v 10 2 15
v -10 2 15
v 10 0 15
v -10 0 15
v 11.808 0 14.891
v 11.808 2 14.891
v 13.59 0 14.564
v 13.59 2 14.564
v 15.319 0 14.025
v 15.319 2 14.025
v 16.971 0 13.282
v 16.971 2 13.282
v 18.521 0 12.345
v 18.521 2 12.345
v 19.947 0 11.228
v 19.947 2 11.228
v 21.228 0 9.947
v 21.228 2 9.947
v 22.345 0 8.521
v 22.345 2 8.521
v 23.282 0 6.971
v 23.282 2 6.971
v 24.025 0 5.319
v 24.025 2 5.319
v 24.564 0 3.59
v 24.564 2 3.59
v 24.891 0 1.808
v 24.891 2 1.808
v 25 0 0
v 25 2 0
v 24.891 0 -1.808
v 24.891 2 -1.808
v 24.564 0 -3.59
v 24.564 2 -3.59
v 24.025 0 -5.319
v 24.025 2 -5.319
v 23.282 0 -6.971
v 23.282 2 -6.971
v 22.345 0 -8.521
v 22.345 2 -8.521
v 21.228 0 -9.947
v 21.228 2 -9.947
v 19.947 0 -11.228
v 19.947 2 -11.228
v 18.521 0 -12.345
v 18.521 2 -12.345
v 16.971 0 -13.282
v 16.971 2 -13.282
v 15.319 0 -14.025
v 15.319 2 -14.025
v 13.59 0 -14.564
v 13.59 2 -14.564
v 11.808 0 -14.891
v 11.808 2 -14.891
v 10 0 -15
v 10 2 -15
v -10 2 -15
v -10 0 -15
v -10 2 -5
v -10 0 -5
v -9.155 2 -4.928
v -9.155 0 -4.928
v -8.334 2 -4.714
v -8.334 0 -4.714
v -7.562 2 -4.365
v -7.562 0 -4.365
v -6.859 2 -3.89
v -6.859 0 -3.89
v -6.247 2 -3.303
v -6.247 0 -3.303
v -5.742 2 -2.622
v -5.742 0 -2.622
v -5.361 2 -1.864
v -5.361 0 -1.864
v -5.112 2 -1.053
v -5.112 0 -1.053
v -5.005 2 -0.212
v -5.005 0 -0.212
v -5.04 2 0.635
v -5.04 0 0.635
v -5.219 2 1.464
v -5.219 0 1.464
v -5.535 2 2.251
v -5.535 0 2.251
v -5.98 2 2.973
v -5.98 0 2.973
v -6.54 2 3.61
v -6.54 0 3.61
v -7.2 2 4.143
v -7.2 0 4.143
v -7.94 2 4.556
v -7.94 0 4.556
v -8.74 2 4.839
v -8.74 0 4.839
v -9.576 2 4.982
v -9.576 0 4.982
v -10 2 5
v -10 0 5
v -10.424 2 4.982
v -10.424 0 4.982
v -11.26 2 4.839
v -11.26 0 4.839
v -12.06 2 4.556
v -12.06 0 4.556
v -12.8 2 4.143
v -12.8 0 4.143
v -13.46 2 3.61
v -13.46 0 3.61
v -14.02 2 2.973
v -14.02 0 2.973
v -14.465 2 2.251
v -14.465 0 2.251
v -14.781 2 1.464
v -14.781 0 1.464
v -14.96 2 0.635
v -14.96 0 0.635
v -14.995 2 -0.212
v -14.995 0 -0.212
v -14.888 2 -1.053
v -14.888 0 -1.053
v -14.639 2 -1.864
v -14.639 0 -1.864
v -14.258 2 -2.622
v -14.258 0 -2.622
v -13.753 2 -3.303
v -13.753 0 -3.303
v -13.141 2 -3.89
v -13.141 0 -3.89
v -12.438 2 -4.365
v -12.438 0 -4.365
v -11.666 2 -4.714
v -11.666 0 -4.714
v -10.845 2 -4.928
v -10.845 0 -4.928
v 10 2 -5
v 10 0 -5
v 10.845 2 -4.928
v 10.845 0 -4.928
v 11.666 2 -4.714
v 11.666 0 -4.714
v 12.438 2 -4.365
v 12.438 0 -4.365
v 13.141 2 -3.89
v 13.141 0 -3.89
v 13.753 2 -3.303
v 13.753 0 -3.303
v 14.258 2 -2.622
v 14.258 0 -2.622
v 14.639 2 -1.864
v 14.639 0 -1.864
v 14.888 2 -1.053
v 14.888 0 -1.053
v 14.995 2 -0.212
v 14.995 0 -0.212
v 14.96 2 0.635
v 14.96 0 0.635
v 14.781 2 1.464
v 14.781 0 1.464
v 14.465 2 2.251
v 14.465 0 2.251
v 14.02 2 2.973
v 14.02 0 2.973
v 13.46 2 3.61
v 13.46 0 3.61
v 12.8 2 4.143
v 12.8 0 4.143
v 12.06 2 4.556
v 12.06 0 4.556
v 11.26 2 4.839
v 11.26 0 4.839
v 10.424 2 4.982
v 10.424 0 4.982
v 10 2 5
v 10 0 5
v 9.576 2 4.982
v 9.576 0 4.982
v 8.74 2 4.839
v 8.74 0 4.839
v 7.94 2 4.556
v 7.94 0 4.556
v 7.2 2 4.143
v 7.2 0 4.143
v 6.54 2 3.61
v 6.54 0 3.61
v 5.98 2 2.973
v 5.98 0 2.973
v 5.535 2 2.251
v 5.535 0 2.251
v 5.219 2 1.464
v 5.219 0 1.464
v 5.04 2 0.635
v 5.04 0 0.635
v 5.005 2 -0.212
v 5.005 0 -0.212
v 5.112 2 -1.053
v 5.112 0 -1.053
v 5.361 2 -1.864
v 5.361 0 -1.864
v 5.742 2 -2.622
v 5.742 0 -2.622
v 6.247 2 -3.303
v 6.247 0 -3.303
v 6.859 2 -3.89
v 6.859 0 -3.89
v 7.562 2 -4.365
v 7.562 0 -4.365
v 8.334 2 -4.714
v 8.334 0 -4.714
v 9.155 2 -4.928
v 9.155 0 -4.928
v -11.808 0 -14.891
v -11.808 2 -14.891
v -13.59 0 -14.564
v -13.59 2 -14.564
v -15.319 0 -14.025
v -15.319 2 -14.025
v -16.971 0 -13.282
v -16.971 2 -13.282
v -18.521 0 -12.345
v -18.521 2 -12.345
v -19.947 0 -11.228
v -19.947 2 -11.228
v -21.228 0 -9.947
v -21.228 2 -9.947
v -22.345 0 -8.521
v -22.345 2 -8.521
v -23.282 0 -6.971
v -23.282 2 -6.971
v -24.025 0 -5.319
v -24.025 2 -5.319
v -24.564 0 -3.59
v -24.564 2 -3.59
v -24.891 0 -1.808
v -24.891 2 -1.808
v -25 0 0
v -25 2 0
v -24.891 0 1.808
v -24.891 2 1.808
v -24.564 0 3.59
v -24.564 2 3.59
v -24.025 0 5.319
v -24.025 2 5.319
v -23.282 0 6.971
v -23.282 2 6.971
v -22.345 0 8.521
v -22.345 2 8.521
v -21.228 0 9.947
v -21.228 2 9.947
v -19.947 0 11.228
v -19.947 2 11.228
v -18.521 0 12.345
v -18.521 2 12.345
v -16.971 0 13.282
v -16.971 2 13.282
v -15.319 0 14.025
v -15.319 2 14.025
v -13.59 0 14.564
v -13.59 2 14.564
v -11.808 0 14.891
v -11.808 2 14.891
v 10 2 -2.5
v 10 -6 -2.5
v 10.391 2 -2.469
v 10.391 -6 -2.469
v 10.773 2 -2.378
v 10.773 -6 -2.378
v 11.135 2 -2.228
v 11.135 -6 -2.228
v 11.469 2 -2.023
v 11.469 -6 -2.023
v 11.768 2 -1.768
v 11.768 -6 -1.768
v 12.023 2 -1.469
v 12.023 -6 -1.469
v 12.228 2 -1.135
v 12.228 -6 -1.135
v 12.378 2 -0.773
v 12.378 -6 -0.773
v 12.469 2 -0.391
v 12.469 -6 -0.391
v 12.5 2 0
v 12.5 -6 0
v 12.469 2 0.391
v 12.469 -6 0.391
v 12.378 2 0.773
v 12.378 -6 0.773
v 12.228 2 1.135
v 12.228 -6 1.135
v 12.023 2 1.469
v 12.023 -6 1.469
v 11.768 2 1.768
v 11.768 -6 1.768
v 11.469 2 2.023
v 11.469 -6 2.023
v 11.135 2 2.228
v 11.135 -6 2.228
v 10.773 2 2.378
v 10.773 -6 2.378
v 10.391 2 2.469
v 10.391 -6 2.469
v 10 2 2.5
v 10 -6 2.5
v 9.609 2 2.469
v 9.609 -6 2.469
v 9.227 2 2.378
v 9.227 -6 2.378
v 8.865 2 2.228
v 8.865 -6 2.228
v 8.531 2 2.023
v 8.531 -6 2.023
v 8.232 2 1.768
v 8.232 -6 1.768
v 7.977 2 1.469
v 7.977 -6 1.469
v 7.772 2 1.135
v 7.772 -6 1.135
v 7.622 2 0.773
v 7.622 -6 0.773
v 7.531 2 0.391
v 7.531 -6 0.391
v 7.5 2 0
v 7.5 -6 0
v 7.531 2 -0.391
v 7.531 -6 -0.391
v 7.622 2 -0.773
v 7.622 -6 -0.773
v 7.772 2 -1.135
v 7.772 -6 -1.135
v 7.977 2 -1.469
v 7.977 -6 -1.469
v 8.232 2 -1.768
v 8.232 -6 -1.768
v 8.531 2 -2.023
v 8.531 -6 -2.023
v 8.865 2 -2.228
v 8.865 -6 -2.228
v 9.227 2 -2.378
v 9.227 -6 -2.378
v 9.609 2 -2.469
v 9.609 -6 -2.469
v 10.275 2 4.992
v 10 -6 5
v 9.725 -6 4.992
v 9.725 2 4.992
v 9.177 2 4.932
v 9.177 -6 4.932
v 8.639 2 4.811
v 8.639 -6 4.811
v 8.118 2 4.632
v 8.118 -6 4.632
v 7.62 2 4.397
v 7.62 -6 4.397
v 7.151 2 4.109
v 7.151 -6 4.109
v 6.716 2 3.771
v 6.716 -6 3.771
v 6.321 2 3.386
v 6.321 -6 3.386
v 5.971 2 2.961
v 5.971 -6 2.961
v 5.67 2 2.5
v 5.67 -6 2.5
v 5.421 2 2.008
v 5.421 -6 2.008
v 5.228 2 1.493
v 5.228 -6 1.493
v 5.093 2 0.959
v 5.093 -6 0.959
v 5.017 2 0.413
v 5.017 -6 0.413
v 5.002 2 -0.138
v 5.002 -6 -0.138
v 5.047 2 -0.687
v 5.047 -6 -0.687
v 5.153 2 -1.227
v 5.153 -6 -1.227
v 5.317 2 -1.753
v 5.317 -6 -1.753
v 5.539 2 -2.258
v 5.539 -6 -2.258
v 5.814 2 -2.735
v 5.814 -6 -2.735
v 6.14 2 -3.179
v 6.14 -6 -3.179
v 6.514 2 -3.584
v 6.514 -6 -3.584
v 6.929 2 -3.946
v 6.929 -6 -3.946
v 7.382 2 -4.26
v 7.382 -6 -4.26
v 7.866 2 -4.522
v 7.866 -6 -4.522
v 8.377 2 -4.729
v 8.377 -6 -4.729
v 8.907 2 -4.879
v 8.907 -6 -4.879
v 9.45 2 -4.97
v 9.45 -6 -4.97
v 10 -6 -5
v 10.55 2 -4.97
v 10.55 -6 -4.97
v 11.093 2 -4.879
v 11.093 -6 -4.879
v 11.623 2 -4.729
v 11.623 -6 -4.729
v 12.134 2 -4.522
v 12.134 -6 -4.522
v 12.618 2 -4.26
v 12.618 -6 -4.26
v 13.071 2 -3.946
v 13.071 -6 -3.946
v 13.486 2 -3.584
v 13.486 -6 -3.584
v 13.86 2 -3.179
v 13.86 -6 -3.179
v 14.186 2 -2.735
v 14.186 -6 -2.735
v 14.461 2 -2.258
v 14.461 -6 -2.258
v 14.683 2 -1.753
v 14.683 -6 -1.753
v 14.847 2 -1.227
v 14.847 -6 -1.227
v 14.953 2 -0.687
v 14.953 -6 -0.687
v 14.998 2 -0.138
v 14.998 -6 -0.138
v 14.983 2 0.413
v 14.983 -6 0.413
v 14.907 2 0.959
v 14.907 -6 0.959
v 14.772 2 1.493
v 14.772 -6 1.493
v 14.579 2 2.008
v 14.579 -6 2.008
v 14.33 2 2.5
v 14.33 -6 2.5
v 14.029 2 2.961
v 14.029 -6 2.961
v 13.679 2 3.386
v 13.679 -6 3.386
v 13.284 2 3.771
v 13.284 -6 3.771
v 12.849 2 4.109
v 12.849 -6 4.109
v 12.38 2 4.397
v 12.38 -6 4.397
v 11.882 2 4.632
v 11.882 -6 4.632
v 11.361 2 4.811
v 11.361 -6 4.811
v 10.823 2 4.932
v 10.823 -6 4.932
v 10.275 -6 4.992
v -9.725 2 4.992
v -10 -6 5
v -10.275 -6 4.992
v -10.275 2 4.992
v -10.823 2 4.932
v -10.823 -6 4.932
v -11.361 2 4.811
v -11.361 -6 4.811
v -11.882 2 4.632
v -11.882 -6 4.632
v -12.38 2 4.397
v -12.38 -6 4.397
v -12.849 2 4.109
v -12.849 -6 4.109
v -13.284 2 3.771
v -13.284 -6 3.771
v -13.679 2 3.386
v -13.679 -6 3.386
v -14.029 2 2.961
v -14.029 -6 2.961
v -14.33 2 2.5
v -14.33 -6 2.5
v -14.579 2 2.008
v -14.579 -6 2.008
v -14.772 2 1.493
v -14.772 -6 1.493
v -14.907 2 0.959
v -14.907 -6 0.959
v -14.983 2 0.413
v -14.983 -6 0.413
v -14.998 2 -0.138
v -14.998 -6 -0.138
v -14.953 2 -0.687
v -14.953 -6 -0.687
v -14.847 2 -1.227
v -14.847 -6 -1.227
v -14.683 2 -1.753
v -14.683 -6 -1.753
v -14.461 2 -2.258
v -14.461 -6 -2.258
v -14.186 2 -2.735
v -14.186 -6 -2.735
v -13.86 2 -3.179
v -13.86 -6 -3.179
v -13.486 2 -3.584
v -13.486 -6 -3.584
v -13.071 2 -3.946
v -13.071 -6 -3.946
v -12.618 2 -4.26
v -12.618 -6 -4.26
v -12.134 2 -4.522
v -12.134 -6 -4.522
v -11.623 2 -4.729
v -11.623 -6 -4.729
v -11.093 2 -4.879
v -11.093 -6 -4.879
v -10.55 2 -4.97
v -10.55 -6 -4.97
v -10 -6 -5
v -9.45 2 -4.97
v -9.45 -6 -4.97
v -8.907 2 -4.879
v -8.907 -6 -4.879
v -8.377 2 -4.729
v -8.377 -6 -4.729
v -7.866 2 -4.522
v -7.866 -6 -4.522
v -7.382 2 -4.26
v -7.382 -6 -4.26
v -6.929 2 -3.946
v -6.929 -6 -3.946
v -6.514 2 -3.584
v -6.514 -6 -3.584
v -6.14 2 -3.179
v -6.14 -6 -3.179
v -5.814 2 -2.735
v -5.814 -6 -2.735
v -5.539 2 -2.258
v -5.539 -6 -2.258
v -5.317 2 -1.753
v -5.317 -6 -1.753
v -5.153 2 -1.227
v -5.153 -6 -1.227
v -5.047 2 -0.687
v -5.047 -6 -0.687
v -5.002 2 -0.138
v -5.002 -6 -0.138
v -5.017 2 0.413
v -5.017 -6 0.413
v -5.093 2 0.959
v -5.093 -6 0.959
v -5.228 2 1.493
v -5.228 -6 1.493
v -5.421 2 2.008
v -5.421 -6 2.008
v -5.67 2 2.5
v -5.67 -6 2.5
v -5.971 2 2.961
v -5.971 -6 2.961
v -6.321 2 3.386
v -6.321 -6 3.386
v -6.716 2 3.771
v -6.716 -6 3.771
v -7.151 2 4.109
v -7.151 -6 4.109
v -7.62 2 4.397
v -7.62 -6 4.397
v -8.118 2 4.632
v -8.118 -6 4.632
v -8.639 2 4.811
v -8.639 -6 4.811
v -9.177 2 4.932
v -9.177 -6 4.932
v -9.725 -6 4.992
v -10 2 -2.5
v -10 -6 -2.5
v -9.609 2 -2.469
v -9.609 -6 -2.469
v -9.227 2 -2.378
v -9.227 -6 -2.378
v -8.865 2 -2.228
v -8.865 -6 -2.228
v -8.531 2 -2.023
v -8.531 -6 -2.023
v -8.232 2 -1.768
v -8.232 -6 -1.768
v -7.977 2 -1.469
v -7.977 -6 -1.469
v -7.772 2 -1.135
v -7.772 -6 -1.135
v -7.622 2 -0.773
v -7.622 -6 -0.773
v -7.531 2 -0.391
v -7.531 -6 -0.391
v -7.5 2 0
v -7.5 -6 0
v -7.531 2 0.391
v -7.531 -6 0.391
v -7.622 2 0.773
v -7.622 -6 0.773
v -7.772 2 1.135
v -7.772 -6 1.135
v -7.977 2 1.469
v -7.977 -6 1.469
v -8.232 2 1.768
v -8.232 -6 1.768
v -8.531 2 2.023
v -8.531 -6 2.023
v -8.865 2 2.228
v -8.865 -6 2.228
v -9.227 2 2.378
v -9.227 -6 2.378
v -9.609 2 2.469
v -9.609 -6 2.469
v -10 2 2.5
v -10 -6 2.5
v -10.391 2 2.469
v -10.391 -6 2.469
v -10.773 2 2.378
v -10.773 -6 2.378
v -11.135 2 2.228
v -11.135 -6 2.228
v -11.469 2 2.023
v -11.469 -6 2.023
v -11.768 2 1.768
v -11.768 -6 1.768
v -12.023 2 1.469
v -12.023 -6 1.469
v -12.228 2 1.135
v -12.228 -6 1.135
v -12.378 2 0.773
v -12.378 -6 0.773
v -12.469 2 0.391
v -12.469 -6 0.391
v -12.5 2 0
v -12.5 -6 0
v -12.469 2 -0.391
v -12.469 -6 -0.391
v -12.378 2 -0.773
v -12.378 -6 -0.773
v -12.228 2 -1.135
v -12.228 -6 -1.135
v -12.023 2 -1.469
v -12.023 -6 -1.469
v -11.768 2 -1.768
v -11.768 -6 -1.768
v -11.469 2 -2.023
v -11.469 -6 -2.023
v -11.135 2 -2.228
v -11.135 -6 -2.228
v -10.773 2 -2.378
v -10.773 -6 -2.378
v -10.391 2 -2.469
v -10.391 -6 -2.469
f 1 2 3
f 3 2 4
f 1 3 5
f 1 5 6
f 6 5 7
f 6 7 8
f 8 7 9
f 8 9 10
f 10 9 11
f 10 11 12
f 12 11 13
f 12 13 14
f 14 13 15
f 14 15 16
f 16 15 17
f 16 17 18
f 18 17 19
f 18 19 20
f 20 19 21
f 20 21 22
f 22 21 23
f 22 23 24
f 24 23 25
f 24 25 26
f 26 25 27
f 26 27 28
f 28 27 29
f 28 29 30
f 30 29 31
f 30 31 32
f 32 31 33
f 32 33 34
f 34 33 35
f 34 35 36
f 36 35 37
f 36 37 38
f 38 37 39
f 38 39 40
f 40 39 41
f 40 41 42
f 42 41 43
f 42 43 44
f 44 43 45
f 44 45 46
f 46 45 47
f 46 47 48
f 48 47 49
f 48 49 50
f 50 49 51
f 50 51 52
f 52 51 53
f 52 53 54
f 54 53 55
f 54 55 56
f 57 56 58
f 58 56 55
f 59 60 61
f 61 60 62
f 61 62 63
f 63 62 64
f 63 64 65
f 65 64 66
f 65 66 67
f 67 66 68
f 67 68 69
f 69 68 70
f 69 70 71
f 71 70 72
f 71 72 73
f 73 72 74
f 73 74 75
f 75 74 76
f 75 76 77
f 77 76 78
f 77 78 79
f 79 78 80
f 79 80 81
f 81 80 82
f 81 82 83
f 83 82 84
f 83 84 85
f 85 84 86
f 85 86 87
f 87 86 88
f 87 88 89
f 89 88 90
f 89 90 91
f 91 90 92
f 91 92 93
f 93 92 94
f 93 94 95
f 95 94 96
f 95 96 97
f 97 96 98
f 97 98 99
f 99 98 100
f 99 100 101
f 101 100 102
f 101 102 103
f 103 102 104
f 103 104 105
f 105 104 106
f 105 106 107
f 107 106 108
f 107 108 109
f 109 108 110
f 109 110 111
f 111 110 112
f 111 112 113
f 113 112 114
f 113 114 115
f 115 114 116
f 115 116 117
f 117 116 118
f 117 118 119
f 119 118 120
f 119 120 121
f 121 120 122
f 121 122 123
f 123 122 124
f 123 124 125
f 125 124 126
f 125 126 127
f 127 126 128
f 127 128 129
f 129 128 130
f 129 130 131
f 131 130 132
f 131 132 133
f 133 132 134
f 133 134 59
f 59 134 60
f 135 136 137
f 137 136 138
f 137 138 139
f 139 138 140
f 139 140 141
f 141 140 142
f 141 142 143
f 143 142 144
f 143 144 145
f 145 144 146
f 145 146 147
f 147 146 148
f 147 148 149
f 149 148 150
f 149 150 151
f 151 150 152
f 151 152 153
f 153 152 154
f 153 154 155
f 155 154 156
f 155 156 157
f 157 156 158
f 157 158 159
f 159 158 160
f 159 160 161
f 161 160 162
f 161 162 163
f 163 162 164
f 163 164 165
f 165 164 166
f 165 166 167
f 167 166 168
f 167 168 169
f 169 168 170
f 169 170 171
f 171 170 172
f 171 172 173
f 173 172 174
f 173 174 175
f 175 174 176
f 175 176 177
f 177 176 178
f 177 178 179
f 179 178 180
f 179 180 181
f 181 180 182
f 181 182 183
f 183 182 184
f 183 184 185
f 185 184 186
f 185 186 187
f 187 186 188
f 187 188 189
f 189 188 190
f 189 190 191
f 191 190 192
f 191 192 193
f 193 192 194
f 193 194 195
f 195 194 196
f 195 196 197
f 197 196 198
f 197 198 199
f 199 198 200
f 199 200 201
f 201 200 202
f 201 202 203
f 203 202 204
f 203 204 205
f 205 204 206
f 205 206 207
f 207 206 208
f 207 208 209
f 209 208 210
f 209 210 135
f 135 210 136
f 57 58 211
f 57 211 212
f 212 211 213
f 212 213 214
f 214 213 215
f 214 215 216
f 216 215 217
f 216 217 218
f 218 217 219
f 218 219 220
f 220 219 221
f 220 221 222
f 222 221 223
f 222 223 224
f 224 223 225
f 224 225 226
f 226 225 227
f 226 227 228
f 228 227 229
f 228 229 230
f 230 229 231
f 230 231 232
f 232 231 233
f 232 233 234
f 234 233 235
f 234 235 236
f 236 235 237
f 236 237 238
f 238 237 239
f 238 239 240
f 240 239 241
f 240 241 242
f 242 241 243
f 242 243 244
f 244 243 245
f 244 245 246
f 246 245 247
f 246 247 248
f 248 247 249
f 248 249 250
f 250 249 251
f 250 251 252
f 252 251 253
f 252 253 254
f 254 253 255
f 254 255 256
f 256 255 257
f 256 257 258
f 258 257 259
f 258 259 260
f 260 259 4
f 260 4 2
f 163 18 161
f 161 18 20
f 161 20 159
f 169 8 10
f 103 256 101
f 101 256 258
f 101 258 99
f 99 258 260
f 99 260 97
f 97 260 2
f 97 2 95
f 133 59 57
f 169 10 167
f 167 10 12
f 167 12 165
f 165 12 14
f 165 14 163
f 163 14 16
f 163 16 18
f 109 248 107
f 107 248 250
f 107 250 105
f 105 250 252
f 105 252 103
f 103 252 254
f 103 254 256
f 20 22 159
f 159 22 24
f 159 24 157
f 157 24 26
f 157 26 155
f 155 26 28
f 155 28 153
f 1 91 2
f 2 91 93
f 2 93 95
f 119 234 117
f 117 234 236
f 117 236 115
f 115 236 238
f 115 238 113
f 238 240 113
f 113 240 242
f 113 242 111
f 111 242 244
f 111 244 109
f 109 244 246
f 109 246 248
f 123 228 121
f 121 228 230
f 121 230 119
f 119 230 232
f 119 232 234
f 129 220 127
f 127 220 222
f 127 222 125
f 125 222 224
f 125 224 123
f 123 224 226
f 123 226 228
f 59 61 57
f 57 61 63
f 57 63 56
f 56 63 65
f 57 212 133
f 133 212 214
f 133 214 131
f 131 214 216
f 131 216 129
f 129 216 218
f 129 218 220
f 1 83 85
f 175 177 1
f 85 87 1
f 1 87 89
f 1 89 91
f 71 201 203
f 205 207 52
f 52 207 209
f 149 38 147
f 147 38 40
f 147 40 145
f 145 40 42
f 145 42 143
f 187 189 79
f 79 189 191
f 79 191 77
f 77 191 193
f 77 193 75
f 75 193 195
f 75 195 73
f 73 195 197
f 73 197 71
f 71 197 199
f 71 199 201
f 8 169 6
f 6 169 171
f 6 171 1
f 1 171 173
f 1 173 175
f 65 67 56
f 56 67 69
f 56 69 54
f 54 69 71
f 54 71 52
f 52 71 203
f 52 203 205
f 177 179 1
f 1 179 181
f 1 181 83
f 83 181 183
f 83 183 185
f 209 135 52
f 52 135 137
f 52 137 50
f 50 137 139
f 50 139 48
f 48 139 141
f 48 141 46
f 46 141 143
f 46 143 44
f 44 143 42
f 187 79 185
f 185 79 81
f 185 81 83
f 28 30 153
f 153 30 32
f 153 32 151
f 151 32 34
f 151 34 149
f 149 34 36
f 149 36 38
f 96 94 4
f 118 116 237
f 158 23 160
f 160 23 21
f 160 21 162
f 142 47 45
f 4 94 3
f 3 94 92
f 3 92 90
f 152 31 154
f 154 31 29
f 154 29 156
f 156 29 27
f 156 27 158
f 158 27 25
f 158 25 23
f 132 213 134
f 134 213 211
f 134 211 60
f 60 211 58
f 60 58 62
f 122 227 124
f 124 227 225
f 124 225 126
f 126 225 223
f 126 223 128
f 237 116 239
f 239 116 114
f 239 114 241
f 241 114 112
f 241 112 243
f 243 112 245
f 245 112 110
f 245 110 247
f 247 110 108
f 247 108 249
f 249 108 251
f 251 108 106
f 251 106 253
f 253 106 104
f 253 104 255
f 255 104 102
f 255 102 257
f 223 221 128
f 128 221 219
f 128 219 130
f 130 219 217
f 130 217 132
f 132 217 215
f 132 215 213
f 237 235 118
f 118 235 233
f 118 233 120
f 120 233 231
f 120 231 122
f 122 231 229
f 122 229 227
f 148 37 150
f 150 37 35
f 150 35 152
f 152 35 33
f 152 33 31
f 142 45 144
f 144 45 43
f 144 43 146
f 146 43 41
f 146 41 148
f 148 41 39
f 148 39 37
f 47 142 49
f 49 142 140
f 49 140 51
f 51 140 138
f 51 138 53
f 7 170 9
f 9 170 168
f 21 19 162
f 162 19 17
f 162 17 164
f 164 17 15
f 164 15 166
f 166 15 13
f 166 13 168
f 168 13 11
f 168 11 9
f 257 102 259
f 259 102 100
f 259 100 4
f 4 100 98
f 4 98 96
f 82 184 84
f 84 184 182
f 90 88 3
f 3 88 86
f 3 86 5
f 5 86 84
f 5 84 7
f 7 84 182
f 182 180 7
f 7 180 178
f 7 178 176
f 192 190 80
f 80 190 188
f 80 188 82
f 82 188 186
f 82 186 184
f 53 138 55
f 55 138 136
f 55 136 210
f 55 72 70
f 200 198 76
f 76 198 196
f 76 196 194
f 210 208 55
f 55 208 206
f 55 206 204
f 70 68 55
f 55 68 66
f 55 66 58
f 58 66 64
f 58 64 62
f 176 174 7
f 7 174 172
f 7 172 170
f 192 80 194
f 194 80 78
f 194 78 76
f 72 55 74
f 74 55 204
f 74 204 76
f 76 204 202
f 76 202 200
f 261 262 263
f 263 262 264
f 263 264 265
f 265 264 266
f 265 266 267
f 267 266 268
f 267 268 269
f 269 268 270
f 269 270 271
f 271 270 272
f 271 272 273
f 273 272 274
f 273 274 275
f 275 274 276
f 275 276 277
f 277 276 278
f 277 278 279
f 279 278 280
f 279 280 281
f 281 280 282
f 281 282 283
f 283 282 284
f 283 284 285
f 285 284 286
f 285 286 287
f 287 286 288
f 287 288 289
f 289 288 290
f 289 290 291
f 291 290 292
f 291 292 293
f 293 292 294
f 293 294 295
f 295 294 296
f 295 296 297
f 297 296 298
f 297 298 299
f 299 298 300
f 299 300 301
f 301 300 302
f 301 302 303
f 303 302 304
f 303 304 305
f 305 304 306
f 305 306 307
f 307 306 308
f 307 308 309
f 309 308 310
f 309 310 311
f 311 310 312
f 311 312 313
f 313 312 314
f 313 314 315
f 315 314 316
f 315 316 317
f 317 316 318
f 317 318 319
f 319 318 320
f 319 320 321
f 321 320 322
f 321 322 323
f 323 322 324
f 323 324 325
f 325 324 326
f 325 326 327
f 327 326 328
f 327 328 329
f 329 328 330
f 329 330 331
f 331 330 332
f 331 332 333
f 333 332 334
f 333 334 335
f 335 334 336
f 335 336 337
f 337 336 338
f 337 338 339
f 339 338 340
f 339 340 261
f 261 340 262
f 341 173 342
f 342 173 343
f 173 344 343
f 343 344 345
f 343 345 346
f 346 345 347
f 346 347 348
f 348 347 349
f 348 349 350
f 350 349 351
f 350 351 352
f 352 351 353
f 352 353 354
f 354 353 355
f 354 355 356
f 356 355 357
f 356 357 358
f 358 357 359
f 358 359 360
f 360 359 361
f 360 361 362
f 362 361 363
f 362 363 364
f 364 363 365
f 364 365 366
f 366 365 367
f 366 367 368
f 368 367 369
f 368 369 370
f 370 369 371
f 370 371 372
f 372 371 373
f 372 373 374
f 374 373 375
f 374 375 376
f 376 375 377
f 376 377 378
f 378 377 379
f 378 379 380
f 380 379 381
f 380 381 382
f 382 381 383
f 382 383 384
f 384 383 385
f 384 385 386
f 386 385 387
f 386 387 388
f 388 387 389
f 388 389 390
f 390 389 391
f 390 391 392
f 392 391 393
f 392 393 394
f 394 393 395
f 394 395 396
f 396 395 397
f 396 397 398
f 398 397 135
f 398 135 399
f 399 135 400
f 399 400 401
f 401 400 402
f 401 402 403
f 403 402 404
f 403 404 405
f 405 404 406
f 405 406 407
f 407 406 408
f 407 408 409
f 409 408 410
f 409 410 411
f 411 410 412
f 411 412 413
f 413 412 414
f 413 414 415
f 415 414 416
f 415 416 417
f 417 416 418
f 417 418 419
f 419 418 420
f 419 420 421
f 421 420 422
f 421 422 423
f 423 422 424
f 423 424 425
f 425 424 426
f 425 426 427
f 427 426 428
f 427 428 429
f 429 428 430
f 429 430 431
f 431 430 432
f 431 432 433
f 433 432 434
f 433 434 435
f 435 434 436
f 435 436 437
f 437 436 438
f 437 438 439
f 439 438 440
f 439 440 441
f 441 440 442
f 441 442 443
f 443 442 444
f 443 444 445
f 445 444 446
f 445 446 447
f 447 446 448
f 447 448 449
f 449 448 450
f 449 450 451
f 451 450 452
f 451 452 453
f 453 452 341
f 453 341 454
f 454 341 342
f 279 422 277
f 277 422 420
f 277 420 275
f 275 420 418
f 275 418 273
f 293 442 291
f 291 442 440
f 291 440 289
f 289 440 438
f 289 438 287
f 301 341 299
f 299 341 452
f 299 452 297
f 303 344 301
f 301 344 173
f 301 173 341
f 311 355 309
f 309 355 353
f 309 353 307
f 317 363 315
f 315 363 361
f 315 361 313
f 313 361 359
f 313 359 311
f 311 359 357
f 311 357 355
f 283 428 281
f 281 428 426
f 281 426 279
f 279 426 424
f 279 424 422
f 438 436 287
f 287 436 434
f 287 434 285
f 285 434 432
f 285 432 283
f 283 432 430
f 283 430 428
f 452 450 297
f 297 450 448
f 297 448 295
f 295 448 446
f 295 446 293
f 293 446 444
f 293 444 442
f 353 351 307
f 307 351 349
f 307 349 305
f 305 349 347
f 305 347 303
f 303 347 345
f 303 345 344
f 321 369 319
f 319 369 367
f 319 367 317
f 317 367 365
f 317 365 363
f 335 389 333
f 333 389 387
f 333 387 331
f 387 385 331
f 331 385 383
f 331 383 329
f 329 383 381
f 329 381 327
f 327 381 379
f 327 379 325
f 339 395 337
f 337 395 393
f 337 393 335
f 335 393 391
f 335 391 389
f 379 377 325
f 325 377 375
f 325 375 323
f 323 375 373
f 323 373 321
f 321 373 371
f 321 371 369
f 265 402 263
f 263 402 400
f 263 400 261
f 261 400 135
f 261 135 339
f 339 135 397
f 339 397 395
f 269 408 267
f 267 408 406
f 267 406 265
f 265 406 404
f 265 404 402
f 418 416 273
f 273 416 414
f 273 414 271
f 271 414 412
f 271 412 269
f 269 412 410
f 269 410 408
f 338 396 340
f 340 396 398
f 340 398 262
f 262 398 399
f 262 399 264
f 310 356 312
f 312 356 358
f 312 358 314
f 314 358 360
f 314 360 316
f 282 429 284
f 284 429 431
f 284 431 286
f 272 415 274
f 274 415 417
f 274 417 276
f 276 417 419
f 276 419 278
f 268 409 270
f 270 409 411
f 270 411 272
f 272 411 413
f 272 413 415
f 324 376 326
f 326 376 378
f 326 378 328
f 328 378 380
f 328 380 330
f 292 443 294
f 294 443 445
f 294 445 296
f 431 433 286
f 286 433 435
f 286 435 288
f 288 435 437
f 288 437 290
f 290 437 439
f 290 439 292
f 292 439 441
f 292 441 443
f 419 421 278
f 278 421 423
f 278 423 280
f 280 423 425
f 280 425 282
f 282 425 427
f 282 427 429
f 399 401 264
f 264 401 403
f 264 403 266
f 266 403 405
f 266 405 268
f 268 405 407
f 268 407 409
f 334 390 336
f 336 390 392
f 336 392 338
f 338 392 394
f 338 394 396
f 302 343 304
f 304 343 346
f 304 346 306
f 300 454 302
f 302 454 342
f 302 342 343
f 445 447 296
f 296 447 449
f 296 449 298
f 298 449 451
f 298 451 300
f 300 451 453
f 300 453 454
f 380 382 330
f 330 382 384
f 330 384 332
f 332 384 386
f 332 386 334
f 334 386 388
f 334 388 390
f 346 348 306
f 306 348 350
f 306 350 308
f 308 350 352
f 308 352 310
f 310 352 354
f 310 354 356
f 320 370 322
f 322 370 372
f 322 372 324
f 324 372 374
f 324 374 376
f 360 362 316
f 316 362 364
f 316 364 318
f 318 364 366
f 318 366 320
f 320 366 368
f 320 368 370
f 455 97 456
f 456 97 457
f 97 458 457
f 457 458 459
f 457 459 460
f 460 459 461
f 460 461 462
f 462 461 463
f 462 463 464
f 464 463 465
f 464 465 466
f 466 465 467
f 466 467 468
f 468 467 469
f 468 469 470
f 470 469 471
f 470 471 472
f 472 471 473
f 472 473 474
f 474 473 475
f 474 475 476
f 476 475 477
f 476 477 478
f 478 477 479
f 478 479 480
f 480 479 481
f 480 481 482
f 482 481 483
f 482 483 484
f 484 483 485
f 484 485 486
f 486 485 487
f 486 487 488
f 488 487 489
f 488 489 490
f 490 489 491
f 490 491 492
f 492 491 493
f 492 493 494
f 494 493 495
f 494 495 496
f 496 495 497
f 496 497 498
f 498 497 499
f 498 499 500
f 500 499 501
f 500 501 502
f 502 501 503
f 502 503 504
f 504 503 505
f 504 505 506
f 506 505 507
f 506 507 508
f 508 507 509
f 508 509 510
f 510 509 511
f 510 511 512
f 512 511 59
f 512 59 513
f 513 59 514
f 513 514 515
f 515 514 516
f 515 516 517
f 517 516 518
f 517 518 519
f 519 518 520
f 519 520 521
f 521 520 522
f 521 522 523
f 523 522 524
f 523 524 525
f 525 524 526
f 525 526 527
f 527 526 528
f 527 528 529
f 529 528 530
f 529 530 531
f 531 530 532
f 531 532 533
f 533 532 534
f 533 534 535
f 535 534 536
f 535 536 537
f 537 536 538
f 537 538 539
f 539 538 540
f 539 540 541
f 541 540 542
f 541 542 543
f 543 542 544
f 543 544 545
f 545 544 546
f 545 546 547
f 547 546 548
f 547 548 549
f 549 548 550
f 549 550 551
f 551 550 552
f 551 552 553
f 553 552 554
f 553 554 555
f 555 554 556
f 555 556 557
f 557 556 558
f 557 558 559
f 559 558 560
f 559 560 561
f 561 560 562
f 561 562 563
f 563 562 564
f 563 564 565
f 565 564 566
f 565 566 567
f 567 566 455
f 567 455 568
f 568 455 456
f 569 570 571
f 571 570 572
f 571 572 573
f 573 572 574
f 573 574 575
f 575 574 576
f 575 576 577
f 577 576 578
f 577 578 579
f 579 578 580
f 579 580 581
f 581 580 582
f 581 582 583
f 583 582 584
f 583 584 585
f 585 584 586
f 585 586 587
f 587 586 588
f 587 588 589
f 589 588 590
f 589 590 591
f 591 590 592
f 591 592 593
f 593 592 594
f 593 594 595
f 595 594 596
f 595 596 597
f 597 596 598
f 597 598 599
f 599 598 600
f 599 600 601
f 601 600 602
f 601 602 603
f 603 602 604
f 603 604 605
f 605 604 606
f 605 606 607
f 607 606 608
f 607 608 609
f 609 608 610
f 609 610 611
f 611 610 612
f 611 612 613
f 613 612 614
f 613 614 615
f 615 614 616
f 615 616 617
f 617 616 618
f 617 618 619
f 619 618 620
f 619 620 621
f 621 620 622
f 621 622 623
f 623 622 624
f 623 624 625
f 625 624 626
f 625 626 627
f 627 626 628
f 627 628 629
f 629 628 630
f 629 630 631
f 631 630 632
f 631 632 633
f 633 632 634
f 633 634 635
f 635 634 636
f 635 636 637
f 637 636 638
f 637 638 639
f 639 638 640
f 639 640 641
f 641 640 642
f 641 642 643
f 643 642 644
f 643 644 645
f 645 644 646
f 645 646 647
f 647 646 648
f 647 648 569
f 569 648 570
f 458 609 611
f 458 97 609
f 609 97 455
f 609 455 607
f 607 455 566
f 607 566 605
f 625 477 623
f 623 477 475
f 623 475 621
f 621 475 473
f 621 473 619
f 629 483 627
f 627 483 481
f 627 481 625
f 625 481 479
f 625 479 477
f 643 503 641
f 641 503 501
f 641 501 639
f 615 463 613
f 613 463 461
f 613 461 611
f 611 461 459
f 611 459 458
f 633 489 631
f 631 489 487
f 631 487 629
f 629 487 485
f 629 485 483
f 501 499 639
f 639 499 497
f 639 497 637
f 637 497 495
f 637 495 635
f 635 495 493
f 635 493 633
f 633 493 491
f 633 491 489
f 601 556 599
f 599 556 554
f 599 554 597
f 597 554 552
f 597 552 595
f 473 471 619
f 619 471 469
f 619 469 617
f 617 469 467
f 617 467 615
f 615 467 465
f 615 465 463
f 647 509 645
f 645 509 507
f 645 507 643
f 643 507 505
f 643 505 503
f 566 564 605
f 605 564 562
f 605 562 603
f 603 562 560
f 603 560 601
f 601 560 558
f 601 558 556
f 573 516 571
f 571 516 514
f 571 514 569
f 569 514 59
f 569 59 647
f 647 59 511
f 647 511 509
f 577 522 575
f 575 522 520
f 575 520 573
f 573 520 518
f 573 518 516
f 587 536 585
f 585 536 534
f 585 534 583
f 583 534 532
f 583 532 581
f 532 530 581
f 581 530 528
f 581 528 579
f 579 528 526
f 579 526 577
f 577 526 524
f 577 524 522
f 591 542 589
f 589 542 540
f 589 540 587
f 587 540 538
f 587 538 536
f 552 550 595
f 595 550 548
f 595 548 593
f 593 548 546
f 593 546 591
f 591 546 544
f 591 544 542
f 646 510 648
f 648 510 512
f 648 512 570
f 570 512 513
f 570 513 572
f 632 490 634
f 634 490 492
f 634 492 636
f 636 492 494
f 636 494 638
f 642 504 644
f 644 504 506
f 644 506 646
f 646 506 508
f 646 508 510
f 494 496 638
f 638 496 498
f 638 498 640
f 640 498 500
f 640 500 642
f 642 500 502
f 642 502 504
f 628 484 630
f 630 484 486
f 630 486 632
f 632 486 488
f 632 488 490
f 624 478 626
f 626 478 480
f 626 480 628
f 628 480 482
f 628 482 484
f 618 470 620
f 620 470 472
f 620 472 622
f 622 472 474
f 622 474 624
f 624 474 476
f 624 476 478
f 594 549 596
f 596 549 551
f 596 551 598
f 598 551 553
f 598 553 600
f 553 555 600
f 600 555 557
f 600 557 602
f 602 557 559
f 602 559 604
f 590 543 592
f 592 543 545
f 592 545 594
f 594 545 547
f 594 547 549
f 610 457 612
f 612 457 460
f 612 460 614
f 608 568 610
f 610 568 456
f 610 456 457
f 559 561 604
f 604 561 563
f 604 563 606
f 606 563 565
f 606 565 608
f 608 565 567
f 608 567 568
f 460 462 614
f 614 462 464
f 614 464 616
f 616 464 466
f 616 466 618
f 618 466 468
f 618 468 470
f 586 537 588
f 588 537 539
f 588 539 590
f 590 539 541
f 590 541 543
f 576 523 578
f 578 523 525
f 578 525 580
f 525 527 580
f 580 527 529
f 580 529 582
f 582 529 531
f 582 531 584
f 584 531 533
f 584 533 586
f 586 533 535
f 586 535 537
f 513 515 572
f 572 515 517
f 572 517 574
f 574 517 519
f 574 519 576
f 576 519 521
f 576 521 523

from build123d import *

# Parameters (mm, degrees)
SKETCH1_R                  = 5
BOSS_EXTRUDE1_DEPTH        = 2
BOSS_EXTRUDE2_DEPTH        = 2
BOSS_EXTRUDE2_DEPTH_BACK   = 6
SKETCH1_3_R                = 5
SKETCH1_3_R_2              = 2.5
BOSS_EXTRUDE2_2_DEPTH      = 2
BOSS_EXTRUDE2_2_DEPTH_BACK = 6


with BuildPart() as part:
    # Sketch1 → Boss-Extrude1 (new body)
    with BuildSketch(Plane(origin=(0, 0, 0), x_dir=(1, 0, 0), z_dir=(0, 1, 0))):
        with BuildLine():
            Line((10, 15), (-10, 15))
            ThreePointArc((-10, 15), (-25, 0), (-10, -15))
            Line((-10, -15), (10, -15))
            ThreePointArc((10, -15), (25, 0), (10, 15))
        make_face()
        with Locations((-10, 0)):
            Circle(SKETCH1_R, mode=Mode.SUBTRACT)
        with Locations((10, 0)):
            Circle(SKETCH1_R, mode=Mode.SUBTRACT)
    extrude(amount=BOSS_EXTRUDE1_DEPTH)


with BuildPart() as body_2:
    # Sketch1<3> → Boss-Extrude2 (new, two sides: drawn at the far end of the back side and taken through both)
    with BuildSketch(Plane(origin=(0, 0, 0), x_dir=(1, 0, 0), z_dir=(0, 1, 0)).offset(-BOSS_EXTRUDE2_DEPTH_BACK)):
        with Locations((-10, 0)):
            Circle(SKETCH1_3_R)
        with Locations((-10, 0)):
            Circle(SKETCH1_3_R_2, mode=Mode.SUBTRACT)
    extrude(amount=BOSS_EXTRUDE2_DEPTH + BOSS_EXTRUDE2_DEPTH_BACK)


with BuildPart() as body_3:
    # Sketch1<3> → Boss-Extrude2 2 (new, two sides: drawn at the far end of the back side and taken through both)
    with BuildSketch(Plane(origin=(0, 0, 0), x_dir=(1, 0, 0), z_dir=(0, 1, 0)).offset(-BOSS_EXTRUDE2_2_DEPTH_BACK)):
        with Locations((10, 0)):
            Circle(SKETCH1_3_R)
        with Locations((10, 0)):
            Circle(SKETCH1_3_R_2, mode=Mode.SUBTRACT)
    extrude(amount=BOSS_EXTRUDE2_2_DEPTH + BOSS_EXTRUDE2_2_DEPTH_BACK)


solid = Compound([part.part, body_2.part, body_3.part])
